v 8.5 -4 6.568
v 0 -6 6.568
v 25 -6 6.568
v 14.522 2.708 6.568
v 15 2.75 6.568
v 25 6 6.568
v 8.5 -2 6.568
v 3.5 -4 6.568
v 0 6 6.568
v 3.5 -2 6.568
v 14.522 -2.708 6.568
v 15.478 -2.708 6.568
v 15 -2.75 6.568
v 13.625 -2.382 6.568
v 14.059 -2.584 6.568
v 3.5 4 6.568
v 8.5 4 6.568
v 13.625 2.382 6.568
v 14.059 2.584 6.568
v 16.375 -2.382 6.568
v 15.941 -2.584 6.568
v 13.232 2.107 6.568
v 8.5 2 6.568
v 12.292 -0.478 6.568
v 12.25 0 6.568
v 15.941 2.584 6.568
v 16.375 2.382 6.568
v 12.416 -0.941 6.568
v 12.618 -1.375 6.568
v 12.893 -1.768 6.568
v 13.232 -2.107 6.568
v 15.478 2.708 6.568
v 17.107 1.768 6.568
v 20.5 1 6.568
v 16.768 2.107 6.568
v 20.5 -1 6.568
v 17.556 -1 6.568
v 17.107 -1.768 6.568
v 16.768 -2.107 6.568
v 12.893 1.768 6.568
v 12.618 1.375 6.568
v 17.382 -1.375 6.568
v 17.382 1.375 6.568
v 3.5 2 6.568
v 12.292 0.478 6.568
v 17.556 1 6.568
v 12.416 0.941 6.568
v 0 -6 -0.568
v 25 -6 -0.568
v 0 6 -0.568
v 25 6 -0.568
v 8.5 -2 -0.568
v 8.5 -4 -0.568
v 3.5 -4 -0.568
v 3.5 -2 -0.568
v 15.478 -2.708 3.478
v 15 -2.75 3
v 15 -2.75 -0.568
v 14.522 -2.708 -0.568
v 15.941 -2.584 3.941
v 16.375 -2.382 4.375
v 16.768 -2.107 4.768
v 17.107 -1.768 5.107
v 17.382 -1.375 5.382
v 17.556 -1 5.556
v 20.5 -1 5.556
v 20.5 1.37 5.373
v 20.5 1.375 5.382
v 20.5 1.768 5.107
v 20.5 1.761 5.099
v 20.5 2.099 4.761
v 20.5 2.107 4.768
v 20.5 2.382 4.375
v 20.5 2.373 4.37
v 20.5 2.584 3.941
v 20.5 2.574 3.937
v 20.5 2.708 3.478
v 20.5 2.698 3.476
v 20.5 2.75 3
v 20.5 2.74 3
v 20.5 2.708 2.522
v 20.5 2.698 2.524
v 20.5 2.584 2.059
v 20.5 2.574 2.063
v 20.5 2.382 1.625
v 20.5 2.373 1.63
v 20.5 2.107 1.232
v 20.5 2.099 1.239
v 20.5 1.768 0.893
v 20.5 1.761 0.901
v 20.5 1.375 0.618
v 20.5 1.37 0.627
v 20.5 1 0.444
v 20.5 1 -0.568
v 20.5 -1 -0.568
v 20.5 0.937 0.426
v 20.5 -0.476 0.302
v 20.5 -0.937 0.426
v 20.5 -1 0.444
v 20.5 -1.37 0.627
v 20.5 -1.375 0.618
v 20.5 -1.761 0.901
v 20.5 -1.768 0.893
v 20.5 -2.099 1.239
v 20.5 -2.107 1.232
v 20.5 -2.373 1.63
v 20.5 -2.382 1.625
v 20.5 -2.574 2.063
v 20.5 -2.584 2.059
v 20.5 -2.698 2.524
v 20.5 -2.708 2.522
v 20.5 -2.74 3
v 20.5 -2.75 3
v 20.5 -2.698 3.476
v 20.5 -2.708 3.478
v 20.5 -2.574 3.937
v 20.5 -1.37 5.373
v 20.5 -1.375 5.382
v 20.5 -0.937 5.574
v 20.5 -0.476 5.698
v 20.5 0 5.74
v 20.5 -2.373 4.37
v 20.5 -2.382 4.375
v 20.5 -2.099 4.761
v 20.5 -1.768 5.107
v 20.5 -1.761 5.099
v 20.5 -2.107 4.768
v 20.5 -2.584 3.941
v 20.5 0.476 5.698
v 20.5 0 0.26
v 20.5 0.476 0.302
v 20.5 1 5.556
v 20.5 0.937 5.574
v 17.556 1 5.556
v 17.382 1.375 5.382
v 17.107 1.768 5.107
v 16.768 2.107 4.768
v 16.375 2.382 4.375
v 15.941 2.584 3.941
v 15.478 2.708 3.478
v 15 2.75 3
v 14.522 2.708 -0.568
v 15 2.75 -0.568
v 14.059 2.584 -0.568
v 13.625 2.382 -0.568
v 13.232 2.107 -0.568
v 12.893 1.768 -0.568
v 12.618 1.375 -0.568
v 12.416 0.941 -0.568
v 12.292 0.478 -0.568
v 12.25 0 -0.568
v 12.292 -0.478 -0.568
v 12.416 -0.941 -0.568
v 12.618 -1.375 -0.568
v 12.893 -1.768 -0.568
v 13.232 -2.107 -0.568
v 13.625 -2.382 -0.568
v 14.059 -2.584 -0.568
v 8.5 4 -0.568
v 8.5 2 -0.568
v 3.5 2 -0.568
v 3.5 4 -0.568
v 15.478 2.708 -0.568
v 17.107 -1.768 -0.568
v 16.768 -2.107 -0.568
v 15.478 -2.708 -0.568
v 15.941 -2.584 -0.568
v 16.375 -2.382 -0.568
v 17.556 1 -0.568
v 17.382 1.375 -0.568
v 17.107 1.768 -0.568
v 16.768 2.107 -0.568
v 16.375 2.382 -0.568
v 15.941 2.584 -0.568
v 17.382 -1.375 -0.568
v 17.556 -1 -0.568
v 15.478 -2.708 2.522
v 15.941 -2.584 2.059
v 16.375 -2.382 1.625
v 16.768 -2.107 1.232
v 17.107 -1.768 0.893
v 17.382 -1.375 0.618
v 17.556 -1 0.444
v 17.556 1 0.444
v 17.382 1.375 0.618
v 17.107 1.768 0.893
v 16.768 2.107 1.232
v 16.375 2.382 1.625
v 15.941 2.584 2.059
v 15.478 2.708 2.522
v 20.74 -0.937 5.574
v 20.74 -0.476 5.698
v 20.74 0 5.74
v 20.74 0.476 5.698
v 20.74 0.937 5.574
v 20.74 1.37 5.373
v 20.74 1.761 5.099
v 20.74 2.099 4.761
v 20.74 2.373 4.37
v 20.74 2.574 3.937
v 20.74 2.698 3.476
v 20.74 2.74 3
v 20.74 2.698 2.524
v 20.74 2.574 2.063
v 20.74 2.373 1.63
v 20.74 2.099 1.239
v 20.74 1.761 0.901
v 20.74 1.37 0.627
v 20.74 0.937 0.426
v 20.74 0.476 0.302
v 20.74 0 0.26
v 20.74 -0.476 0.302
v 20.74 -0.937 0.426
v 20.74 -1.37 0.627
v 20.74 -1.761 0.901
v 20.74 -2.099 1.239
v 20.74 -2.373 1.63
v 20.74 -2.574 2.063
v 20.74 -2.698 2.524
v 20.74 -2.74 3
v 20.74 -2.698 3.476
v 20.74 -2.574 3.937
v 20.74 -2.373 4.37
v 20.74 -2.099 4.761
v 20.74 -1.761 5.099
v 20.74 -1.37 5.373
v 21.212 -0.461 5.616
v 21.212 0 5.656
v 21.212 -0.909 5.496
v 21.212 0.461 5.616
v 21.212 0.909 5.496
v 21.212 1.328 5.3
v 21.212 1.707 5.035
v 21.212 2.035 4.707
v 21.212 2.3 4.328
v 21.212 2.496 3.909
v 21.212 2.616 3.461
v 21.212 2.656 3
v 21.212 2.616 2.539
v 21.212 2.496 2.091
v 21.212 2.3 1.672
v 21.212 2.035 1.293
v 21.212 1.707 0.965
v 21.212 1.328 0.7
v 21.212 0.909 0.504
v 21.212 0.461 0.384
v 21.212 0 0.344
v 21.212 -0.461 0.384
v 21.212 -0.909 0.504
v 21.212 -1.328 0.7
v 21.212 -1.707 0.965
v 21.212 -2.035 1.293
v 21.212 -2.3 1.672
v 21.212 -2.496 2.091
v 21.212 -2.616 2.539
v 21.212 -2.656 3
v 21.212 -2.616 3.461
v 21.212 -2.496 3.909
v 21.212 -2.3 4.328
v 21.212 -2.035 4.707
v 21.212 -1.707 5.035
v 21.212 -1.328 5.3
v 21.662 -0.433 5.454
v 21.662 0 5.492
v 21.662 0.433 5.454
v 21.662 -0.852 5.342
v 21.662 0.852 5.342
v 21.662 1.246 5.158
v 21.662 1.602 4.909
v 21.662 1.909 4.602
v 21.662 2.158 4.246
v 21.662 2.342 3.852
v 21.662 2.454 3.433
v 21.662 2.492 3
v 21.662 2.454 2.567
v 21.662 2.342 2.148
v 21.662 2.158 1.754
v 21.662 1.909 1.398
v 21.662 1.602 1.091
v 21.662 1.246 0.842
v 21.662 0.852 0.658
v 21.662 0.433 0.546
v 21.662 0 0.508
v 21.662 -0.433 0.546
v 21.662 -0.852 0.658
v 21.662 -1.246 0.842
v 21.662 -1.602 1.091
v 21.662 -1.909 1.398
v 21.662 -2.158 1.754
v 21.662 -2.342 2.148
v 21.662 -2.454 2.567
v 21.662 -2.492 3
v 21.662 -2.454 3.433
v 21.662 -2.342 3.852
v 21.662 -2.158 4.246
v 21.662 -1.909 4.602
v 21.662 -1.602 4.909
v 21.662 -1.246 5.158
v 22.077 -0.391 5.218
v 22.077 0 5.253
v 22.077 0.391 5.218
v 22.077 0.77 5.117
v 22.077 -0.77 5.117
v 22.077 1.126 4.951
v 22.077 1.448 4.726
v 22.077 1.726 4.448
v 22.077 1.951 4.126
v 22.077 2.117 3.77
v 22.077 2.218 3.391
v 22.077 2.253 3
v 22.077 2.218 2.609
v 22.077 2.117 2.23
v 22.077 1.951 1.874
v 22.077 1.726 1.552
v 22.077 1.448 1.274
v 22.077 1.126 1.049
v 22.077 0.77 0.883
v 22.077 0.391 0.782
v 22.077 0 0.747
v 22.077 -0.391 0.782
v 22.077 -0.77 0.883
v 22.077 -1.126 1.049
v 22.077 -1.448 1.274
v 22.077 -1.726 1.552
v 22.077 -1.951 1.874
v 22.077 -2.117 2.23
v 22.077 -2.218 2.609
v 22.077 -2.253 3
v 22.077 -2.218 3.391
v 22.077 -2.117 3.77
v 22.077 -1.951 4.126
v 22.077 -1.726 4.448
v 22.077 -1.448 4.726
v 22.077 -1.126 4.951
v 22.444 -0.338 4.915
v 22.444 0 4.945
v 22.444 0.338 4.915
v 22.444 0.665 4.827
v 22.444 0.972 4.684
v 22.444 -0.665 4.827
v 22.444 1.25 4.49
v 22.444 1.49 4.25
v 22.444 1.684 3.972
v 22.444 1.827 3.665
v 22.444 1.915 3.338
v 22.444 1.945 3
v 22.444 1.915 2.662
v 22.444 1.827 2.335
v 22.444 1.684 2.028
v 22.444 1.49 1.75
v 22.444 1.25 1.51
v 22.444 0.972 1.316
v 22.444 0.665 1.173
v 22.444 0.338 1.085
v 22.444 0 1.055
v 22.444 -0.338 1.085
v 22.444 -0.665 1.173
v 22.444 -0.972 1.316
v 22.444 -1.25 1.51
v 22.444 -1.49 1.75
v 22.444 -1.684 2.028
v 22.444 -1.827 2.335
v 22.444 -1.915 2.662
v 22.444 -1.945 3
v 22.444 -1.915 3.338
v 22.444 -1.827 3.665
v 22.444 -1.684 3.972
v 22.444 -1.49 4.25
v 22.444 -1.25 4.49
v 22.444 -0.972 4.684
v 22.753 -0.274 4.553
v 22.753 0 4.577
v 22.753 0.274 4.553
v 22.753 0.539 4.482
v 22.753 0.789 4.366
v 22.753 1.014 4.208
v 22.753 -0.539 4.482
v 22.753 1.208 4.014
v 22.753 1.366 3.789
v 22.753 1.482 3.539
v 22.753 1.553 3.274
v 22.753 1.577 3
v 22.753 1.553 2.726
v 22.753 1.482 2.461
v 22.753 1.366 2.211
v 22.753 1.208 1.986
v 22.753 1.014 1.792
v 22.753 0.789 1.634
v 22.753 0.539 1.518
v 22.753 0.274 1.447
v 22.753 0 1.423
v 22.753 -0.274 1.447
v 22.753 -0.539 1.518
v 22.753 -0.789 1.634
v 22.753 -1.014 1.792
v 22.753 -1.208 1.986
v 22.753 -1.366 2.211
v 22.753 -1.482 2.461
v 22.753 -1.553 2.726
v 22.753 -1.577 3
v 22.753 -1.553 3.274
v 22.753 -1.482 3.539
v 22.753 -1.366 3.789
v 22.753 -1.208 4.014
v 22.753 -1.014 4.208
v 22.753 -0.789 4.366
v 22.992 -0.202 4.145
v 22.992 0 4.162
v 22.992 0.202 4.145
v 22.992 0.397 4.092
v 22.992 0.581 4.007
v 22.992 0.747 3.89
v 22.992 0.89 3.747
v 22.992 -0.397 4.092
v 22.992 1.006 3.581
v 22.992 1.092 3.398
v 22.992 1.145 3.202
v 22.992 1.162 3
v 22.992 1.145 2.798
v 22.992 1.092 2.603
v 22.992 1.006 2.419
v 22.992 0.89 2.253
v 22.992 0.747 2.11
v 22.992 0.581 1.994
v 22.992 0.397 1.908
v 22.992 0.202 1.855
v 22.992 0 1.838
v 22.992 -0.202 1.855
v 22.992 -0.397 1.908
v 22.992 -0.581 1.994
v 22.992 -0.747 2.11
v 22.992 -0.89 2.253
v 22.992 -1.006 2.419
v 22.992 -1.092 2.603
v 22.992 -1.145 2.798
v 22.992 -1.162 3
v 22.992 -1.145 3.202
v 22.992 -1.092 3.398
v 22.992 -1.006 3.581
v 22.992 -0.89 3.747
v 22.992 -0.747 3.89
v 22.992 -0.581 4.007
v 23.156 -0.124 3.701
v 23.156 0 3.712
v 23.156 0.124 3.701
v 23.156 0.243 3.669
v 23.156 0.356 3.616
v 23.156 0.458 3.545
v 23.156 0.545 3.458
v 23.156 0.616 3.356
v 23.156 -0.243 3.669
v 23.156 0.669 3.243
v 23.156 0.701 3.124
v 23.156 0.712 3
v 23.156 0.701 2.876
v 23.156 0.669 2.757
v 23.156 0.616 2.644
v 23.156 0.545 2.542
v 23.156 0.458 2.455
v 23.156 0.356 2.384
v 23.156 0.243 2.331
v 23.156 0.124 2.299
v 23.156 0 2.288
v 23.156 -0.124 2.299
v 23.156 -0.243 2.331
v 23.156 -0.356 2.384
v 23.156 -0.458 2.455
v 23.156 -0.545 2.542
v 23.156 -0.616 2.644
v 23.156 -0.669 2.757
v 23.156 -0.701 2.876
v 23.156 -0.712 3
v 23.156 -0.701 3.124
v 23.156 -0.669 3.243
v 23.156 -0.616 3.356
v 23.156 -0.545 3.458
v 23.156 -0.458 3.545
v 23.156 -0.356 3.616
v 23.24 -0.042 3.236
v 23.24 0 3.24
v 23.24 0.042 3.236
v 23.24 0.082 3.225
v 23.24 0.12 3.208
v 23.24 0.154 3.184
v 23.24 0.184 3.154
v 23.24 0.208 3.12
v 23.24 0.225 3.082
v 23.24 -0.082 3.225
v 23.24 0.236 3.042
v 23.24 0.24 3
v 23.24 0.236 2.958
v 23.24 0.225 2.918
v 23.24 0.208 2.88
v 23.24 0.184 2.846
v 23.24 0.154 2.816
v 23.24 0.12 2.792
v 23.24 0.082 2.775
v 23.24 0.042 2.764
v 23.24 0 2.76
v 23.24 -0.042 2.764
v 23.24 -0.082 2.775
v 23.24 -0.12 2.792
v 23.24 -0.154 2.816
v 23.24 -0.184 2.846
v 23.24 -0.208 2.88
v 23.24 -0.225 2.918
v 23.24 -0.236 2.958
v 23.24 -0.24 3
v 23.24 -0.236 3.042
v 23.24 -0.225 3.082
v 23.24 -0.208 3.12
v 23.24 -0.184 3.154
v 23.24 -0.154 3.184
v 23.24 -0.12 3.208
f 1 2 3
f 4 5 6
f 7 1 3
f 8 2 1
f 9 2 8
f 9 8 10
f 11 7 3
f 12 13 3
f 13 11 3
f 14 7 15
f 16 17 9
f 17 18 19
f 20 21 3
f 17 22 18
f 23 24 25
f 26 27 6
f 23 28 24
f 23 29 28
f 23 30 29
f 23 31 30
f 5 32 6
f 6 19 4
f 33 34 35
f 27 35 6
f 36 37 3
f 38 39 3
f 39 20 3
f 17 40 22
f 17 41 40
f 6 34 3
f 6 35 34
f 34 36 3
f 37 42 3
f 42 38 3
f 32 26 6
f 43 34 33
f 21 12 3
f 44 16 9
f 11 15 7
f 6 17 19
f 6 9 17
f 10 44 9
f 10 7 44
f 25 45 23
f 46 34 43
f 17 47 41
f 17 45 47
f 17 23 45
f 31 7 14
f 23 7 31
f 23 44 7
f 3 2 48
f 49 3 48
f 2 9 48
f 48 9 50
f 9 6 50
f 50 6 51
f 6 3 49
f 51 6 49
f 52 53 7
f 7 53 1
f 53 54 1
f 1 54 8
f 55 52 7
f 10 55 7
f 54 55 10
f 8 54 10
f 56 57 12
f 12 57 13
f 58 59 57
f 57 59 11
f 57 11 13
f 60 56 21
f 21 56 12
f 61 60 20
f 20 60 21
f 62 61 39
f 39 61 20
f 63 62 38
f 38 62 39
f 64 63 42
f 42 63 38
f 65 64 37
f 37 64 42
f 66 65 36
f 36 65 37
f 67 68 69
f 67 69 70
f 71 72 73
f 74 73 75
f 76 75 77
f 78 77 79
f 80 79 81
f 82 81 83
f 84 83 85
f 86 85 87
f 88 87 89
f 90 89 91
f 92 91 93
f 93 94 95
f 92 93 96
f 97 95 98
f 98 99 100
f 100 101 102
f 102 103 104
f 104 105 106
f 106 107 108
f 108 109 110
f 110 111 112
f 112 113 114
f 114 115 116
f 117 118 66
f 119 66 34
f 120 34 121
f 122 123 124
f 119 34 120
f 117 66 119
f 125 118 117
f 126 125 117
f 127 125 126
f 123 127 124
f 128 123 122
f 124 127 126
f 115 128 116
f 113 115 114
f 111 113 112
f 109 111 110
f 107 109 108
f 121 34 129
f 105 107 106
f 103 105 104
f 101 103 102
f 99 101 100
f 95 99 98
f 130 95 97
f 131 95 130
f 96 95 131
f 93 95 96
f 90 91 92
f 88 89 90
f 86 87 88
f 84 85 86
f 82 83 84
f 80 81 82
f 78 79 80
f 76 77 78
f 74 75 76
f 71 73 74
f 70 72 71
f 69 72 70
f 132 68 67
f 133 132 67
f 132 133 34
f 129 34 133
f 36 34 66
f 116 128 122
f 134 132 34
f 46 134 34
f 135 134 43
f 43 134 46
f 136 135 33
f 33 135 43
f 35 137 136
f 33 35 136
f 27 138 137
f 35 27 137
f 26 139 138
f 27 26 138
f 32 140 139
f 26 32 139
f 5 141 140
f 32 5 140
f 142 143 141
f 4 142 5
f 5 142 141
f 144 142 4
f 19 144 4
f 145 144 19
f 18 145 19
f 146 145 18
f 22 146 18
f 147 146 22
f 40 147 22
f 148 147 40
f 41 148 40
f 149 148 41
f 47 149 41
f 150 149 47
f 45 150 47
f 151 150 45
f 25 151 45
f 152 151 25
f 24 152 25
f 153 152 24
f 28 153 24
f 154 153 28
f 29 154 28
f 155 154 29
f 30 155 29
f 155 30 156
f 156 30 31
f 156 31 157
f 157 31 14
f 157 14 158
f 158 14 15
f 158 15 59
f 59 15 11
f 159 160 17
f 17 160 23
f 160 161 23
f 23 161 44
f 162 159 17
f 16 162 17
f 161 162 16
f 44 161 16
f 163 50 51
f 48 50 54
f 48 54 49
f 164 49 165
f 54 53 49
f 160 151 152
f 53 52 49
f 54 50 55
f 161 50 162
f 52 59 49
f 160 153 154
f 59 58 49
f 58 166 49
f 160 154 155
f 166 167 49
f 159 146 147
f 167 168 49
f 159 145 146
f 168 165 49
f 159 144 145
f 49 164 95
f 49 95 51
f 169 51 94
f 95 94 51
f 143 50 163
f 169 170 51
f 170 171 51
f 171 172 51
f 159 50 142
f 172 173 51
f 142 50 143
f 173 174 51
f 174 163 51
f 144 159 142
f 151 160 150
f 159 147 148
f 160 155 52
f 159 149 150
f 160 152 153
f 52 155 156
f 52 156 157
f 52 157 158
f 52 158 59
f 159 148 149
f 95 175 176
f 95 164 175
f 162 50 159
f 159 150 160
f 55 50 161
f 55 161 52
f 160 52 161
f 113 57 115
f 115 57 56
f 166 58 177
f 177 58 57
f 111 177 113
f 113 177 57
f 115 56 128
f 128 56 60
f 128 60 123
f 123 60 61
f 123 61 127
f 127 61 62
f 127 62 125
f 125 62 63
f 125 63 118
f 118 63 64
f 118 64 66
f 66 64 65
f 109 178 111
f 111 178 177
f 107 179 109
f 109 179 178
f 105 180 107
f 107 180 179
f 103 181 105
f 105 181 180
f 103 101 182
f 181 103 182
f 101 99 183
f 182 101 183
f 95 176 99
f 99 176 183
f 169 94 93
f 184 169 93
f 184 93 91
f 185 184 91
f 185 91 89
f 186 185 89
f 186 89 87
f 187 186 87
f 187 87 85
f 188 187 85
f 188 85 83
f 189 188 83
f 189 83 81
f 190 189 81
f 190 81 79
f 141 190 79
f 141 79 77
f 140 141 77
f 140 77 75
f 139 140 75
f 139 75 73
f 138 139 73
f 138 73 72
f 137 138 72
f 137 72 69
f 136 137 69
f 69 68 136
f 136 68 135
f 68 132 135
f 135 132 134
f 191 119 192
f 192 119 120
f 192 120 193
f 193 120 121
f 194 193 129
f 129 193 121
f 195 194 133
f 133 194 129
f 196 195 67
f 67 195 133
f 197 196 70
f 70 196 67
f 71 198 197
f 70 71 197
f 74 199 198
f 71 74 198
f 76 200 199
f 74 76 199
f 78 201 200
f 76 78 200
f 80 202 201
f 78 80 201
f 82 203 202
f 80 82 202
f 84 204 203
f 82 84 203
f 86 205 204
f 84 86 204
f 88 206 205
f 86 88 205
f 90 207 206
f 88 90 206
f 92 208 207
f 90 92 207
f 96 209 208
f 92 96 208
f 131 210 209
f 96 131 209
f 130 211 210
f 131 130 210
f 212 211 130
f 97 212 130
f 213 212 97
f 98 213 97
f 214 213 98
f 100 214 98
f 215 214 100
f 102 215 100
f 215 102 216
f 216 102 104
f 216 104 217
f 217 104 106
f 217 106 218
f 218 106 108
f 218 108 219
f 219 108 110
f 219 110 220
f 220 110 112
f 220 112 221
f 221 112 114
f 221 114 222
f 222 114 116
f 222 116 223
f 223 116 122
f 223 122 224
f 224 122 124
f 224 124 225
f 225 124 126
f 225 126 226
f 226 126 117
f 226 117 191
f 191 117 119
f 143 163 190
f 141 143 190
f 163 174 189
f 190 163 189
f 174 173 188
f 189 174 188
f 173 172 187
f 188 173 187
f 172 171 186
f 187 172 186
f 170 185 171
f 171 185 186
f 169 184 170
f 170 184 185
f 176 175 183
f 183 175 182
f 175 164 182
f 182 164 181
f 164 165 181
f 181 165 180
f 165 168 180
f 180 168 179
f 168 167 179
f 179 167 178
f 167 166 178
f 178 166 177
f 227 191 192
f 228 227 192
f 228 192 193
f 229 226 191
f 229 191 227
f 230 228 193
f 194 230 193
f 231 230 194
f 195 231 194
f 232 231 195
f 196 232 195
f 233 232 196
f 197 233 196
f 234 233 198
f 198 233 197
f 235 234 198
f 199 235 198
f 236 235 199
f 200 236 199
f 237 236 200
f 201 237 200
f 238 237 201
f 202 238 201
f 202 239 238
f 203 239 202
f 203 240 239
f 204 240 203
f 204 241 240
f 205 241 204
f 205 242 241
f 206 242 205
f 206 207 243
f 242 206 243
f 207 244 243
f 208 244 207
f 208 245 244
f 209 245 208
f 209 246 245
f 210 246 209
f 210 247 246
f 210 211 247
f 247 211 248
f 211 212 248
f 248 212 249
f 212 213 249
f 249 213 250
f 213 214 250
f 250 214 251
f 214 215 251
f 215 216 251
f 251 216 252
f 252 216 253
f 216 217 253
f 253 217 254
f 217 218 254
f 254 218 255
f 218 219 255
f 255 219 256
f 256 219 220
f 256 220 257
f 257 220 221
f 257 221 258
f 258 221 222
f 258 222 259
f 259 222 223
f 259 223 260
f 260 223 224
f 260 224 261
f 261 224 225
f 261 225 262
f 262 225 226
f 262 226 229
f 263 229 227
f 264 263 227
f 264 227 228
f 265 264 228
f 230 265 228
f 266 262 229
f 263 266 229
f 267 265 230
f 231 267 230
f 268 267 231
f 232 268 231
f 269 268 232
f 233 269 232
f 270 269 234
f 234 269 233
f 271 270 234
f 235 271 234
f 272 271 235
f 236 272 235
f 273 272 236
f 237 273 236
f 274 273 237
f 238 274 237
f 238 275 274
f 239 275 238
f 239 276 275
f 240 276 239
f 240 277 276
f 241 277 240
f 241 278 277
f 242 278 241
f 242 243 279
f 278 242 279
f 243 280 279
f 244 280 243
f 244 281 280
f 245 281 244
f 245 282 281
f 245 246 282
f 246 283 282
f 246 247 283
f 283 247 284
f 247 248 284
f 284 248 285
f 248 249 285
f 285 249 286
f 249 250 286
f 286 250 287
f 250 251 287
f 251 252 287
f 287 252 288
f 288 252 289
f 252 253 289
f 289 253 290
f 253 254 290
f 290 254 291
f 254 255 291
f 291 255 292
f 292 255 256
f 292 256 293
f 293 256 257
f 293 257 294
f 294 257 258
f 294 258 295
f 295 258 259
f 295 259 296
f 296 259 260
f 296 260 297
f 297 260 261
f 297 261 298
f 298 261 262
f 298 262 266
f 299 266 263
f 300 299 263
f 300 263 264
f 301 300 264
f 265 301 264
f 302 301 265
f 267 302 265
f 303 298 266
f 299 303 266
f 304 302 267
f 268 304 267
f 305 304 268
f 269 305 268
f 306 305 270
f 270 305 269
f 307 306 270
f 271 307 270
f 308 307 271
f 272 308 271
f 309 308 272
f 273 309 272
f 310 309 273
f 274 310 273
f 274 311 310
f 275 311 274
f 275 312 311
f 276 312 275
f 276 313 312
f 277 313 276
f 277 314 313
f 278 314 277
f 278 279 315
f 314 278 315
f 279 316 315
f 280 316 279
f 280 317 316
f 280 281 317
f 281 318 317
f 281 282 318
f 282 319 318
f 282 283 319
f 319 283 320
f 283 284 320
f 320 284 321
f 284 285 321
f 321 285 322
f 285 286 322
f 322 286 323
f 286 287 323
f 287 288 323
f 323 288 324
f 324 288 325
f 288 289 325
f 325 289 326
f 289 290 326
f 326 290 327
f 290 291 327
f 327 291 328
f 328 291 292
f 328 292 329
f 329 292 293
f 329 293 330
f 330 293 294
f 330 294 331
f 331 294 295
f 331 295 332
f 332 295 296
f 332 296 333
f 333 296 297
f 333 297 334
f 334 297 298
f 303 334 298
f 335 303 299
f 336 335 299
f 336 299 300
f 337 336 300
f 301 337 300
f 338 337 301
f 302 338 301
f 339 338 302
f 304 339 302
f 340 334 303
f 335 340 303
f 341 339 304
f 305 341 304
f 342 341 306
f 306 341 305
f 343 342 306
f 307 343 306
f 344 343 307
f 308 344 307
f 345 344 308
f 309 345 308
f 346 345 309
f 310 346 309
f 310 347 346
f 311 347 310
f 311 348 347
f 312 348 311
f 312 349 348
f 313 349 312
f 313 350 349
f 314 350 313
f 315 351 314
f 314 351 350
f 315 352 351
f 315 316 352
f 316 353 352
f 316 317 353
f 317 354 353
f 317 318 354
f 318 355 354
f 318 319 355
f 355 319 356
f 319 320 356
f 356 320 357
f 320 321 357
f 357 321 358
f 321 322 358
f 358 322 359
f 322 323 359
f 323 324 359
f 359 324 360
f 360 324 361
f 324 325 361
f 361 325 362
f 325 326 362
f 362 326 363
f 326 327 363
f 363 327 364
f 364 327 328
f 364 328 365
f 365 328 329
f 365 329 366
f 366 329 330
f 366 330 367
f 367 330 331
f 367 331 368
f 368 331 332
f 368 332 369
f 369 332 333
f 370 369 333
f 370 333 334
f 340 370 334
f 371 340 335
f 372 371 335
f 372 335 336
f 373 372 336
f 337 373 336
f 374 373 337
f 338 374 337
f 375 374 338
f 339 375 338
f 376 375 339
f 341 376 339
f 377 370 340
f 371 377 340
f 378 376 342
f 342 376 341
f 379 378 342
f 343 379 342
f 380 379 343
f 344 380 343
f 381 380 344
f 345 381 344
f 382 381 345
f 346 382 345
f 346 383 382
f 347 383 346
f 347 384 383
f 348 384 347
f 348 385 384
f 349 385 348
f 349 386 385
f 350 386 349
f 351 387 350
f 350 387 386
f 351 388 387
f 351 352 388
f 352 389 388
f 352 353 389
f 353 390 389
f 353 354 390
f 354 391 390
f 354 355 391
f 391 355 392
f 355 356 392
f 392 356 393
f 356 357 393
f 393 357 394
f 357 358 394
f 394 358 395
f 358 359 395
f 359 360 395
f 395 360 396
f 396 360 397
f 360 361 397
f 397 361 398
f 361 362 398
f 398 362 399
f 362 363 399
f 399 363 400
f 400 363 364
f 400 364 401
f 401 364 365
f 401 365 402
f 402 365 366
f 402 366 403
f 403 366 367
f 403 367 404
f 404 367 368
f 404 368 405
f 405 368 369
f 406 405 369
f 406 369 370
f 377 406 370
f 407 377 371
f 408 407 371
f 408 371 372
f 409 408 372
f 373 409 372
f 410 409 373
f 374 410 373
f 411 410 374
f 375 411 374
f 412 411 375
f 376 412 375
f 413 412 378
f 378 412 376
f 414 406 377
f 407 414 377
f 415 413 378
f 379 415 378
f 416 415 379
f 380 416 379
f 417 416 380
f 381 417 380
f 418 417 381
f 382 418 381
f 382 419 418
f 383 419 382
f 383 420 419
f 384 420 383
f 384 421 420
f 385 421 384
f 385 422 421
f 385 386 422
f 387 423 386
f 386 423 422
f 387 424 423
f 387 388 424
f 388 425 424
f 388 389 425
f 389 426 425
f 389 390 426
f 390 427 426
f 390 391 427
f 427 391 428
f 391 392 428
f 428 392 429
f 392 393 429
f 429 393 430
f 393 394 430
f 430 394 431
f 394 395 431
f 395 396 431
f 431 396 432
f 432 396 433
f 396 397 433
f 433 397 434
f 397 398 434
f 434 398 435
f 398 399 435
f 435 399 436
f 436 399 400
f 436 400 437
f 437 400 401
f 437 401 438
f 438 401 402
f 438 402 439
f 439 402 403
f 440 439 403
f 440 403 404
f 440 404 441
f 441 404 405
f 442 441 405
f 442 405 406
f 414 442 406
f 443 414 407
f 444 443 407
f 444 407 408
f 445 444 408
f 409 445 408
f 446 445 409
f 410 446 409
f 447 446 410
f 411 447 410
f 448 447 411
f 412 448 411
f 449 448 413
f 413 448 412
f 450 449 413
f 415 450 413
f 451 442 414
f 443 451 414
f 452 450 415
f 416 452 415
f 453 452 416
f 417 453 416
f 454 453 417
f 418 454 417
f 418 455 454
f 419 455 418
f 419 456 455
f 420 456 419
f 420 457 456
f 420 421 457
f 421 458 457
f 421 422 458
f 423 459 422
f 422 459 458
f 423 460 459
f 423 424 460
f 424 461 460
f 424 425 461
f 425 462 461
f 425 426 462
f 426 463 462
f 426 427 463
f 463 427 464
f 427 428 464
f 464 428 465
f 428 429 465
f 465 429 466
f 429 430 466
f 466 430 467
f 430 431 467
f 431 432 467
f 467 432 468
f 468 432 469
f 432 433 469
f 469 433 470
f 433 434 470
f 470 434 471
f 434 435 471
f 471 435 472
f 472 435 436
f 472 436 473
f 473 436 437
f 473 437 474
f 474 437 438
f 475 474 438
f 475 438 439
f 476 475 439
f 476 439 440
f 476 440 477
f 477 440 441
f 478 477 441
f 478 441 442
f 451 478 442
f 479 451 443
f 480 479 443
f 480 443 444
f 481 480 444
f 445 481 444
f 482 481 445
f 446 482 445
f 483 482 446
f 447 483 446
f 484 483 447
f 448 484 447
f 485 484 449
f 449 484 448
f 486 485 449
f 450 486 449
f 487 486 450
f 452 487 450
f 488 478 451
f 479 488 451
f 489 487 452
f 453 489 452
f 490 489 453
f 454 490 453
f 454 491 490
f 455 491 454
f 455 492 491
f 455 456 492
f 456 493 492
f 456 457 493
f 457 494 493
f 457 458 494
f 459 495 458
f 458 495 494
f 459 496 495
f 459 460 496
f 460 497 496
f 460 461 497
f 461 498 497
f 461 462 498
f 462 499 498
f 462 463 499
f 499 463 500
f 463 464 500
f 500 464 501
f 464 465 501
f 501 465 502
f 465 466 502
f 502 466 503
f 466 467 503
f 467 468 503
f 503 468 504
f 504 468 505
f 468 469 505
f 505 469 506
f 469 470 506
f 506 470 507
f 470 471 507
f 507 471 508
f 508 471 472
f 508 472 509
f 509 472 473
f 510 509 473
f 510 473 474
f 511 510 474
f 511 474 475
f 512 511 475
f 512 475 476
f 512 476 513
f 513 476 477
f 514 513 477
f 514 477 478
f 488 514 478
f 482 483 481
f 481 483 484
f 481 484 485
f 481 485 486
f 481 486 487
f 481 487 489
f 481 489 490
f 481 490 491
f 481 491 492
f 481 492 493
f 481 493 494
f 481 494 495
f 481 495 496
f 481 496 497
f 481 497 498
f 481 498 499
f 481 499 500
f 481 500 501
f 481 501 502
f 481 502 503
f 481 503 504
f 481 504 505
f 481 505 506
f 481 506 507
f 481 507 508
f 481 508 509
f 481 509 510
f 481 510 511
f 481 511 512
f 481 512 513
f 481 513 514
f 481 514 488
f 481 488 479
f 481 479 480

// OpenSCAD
// Penny weights for ball chain
// a Parametric re-design of "Weight for swinging pendulum" by Bre (http://www.thingiverse.com/thing:17016)
// Using parts of "Parametric Ball Pulley" by zignig (http://www.thingiverse.com/thing:1322)
// Designed for use with the polorgraph

// Quality of cylinders/spheres
$fa = 10;
$fs = 0.4;

// General options
ball_diameter = 5.5;
ball_spacing = 69.5/11; // The distance from the centre of one ball to the next
link_diameter = 2;
roll_diameter = 20.25;
roll_height = 0;
wall = 6;
clip_height = 15;
block_height = 25;

zip_h= 5;
zip_w = 2;

// Calculate dimensions
PI = 3.1415927;
link_length = ball_spacing - ball_diameter ;
slotwidth = ball_diameter+2*link_length;
module slot(){
union(){
	translate ([0, 0, ball_diameter]) sphere (r = ball_diameter/2);
	rotate([0,90,0]) cylinder(h = wall*4, r = ball_diameter/2, center=true);
	cylinder(h = ball_diameter, r = ball_diameter/2);
	translate ([0, 0, ball_diameter/2]) cube([wall*4, link_diameter, ball_diameter], center=true);
}
}

module zip(){
cube([wall*4, zip_w, zip_h], center=true);
}


translate ([0, 0, wall/2]) rotate([0,90,0]) {
difference(){
	union(){
		translate ([-slotwidth/2, -wall, 0]) cube([slotwidth,2*wall, block_height]);
	}
	translate ([0, 0, roll_height+clip_height]) slot();
	translate ([0, wall/2, wall]) zip();
	translate ([0, -wall/2, wall]) zip();
}
}
